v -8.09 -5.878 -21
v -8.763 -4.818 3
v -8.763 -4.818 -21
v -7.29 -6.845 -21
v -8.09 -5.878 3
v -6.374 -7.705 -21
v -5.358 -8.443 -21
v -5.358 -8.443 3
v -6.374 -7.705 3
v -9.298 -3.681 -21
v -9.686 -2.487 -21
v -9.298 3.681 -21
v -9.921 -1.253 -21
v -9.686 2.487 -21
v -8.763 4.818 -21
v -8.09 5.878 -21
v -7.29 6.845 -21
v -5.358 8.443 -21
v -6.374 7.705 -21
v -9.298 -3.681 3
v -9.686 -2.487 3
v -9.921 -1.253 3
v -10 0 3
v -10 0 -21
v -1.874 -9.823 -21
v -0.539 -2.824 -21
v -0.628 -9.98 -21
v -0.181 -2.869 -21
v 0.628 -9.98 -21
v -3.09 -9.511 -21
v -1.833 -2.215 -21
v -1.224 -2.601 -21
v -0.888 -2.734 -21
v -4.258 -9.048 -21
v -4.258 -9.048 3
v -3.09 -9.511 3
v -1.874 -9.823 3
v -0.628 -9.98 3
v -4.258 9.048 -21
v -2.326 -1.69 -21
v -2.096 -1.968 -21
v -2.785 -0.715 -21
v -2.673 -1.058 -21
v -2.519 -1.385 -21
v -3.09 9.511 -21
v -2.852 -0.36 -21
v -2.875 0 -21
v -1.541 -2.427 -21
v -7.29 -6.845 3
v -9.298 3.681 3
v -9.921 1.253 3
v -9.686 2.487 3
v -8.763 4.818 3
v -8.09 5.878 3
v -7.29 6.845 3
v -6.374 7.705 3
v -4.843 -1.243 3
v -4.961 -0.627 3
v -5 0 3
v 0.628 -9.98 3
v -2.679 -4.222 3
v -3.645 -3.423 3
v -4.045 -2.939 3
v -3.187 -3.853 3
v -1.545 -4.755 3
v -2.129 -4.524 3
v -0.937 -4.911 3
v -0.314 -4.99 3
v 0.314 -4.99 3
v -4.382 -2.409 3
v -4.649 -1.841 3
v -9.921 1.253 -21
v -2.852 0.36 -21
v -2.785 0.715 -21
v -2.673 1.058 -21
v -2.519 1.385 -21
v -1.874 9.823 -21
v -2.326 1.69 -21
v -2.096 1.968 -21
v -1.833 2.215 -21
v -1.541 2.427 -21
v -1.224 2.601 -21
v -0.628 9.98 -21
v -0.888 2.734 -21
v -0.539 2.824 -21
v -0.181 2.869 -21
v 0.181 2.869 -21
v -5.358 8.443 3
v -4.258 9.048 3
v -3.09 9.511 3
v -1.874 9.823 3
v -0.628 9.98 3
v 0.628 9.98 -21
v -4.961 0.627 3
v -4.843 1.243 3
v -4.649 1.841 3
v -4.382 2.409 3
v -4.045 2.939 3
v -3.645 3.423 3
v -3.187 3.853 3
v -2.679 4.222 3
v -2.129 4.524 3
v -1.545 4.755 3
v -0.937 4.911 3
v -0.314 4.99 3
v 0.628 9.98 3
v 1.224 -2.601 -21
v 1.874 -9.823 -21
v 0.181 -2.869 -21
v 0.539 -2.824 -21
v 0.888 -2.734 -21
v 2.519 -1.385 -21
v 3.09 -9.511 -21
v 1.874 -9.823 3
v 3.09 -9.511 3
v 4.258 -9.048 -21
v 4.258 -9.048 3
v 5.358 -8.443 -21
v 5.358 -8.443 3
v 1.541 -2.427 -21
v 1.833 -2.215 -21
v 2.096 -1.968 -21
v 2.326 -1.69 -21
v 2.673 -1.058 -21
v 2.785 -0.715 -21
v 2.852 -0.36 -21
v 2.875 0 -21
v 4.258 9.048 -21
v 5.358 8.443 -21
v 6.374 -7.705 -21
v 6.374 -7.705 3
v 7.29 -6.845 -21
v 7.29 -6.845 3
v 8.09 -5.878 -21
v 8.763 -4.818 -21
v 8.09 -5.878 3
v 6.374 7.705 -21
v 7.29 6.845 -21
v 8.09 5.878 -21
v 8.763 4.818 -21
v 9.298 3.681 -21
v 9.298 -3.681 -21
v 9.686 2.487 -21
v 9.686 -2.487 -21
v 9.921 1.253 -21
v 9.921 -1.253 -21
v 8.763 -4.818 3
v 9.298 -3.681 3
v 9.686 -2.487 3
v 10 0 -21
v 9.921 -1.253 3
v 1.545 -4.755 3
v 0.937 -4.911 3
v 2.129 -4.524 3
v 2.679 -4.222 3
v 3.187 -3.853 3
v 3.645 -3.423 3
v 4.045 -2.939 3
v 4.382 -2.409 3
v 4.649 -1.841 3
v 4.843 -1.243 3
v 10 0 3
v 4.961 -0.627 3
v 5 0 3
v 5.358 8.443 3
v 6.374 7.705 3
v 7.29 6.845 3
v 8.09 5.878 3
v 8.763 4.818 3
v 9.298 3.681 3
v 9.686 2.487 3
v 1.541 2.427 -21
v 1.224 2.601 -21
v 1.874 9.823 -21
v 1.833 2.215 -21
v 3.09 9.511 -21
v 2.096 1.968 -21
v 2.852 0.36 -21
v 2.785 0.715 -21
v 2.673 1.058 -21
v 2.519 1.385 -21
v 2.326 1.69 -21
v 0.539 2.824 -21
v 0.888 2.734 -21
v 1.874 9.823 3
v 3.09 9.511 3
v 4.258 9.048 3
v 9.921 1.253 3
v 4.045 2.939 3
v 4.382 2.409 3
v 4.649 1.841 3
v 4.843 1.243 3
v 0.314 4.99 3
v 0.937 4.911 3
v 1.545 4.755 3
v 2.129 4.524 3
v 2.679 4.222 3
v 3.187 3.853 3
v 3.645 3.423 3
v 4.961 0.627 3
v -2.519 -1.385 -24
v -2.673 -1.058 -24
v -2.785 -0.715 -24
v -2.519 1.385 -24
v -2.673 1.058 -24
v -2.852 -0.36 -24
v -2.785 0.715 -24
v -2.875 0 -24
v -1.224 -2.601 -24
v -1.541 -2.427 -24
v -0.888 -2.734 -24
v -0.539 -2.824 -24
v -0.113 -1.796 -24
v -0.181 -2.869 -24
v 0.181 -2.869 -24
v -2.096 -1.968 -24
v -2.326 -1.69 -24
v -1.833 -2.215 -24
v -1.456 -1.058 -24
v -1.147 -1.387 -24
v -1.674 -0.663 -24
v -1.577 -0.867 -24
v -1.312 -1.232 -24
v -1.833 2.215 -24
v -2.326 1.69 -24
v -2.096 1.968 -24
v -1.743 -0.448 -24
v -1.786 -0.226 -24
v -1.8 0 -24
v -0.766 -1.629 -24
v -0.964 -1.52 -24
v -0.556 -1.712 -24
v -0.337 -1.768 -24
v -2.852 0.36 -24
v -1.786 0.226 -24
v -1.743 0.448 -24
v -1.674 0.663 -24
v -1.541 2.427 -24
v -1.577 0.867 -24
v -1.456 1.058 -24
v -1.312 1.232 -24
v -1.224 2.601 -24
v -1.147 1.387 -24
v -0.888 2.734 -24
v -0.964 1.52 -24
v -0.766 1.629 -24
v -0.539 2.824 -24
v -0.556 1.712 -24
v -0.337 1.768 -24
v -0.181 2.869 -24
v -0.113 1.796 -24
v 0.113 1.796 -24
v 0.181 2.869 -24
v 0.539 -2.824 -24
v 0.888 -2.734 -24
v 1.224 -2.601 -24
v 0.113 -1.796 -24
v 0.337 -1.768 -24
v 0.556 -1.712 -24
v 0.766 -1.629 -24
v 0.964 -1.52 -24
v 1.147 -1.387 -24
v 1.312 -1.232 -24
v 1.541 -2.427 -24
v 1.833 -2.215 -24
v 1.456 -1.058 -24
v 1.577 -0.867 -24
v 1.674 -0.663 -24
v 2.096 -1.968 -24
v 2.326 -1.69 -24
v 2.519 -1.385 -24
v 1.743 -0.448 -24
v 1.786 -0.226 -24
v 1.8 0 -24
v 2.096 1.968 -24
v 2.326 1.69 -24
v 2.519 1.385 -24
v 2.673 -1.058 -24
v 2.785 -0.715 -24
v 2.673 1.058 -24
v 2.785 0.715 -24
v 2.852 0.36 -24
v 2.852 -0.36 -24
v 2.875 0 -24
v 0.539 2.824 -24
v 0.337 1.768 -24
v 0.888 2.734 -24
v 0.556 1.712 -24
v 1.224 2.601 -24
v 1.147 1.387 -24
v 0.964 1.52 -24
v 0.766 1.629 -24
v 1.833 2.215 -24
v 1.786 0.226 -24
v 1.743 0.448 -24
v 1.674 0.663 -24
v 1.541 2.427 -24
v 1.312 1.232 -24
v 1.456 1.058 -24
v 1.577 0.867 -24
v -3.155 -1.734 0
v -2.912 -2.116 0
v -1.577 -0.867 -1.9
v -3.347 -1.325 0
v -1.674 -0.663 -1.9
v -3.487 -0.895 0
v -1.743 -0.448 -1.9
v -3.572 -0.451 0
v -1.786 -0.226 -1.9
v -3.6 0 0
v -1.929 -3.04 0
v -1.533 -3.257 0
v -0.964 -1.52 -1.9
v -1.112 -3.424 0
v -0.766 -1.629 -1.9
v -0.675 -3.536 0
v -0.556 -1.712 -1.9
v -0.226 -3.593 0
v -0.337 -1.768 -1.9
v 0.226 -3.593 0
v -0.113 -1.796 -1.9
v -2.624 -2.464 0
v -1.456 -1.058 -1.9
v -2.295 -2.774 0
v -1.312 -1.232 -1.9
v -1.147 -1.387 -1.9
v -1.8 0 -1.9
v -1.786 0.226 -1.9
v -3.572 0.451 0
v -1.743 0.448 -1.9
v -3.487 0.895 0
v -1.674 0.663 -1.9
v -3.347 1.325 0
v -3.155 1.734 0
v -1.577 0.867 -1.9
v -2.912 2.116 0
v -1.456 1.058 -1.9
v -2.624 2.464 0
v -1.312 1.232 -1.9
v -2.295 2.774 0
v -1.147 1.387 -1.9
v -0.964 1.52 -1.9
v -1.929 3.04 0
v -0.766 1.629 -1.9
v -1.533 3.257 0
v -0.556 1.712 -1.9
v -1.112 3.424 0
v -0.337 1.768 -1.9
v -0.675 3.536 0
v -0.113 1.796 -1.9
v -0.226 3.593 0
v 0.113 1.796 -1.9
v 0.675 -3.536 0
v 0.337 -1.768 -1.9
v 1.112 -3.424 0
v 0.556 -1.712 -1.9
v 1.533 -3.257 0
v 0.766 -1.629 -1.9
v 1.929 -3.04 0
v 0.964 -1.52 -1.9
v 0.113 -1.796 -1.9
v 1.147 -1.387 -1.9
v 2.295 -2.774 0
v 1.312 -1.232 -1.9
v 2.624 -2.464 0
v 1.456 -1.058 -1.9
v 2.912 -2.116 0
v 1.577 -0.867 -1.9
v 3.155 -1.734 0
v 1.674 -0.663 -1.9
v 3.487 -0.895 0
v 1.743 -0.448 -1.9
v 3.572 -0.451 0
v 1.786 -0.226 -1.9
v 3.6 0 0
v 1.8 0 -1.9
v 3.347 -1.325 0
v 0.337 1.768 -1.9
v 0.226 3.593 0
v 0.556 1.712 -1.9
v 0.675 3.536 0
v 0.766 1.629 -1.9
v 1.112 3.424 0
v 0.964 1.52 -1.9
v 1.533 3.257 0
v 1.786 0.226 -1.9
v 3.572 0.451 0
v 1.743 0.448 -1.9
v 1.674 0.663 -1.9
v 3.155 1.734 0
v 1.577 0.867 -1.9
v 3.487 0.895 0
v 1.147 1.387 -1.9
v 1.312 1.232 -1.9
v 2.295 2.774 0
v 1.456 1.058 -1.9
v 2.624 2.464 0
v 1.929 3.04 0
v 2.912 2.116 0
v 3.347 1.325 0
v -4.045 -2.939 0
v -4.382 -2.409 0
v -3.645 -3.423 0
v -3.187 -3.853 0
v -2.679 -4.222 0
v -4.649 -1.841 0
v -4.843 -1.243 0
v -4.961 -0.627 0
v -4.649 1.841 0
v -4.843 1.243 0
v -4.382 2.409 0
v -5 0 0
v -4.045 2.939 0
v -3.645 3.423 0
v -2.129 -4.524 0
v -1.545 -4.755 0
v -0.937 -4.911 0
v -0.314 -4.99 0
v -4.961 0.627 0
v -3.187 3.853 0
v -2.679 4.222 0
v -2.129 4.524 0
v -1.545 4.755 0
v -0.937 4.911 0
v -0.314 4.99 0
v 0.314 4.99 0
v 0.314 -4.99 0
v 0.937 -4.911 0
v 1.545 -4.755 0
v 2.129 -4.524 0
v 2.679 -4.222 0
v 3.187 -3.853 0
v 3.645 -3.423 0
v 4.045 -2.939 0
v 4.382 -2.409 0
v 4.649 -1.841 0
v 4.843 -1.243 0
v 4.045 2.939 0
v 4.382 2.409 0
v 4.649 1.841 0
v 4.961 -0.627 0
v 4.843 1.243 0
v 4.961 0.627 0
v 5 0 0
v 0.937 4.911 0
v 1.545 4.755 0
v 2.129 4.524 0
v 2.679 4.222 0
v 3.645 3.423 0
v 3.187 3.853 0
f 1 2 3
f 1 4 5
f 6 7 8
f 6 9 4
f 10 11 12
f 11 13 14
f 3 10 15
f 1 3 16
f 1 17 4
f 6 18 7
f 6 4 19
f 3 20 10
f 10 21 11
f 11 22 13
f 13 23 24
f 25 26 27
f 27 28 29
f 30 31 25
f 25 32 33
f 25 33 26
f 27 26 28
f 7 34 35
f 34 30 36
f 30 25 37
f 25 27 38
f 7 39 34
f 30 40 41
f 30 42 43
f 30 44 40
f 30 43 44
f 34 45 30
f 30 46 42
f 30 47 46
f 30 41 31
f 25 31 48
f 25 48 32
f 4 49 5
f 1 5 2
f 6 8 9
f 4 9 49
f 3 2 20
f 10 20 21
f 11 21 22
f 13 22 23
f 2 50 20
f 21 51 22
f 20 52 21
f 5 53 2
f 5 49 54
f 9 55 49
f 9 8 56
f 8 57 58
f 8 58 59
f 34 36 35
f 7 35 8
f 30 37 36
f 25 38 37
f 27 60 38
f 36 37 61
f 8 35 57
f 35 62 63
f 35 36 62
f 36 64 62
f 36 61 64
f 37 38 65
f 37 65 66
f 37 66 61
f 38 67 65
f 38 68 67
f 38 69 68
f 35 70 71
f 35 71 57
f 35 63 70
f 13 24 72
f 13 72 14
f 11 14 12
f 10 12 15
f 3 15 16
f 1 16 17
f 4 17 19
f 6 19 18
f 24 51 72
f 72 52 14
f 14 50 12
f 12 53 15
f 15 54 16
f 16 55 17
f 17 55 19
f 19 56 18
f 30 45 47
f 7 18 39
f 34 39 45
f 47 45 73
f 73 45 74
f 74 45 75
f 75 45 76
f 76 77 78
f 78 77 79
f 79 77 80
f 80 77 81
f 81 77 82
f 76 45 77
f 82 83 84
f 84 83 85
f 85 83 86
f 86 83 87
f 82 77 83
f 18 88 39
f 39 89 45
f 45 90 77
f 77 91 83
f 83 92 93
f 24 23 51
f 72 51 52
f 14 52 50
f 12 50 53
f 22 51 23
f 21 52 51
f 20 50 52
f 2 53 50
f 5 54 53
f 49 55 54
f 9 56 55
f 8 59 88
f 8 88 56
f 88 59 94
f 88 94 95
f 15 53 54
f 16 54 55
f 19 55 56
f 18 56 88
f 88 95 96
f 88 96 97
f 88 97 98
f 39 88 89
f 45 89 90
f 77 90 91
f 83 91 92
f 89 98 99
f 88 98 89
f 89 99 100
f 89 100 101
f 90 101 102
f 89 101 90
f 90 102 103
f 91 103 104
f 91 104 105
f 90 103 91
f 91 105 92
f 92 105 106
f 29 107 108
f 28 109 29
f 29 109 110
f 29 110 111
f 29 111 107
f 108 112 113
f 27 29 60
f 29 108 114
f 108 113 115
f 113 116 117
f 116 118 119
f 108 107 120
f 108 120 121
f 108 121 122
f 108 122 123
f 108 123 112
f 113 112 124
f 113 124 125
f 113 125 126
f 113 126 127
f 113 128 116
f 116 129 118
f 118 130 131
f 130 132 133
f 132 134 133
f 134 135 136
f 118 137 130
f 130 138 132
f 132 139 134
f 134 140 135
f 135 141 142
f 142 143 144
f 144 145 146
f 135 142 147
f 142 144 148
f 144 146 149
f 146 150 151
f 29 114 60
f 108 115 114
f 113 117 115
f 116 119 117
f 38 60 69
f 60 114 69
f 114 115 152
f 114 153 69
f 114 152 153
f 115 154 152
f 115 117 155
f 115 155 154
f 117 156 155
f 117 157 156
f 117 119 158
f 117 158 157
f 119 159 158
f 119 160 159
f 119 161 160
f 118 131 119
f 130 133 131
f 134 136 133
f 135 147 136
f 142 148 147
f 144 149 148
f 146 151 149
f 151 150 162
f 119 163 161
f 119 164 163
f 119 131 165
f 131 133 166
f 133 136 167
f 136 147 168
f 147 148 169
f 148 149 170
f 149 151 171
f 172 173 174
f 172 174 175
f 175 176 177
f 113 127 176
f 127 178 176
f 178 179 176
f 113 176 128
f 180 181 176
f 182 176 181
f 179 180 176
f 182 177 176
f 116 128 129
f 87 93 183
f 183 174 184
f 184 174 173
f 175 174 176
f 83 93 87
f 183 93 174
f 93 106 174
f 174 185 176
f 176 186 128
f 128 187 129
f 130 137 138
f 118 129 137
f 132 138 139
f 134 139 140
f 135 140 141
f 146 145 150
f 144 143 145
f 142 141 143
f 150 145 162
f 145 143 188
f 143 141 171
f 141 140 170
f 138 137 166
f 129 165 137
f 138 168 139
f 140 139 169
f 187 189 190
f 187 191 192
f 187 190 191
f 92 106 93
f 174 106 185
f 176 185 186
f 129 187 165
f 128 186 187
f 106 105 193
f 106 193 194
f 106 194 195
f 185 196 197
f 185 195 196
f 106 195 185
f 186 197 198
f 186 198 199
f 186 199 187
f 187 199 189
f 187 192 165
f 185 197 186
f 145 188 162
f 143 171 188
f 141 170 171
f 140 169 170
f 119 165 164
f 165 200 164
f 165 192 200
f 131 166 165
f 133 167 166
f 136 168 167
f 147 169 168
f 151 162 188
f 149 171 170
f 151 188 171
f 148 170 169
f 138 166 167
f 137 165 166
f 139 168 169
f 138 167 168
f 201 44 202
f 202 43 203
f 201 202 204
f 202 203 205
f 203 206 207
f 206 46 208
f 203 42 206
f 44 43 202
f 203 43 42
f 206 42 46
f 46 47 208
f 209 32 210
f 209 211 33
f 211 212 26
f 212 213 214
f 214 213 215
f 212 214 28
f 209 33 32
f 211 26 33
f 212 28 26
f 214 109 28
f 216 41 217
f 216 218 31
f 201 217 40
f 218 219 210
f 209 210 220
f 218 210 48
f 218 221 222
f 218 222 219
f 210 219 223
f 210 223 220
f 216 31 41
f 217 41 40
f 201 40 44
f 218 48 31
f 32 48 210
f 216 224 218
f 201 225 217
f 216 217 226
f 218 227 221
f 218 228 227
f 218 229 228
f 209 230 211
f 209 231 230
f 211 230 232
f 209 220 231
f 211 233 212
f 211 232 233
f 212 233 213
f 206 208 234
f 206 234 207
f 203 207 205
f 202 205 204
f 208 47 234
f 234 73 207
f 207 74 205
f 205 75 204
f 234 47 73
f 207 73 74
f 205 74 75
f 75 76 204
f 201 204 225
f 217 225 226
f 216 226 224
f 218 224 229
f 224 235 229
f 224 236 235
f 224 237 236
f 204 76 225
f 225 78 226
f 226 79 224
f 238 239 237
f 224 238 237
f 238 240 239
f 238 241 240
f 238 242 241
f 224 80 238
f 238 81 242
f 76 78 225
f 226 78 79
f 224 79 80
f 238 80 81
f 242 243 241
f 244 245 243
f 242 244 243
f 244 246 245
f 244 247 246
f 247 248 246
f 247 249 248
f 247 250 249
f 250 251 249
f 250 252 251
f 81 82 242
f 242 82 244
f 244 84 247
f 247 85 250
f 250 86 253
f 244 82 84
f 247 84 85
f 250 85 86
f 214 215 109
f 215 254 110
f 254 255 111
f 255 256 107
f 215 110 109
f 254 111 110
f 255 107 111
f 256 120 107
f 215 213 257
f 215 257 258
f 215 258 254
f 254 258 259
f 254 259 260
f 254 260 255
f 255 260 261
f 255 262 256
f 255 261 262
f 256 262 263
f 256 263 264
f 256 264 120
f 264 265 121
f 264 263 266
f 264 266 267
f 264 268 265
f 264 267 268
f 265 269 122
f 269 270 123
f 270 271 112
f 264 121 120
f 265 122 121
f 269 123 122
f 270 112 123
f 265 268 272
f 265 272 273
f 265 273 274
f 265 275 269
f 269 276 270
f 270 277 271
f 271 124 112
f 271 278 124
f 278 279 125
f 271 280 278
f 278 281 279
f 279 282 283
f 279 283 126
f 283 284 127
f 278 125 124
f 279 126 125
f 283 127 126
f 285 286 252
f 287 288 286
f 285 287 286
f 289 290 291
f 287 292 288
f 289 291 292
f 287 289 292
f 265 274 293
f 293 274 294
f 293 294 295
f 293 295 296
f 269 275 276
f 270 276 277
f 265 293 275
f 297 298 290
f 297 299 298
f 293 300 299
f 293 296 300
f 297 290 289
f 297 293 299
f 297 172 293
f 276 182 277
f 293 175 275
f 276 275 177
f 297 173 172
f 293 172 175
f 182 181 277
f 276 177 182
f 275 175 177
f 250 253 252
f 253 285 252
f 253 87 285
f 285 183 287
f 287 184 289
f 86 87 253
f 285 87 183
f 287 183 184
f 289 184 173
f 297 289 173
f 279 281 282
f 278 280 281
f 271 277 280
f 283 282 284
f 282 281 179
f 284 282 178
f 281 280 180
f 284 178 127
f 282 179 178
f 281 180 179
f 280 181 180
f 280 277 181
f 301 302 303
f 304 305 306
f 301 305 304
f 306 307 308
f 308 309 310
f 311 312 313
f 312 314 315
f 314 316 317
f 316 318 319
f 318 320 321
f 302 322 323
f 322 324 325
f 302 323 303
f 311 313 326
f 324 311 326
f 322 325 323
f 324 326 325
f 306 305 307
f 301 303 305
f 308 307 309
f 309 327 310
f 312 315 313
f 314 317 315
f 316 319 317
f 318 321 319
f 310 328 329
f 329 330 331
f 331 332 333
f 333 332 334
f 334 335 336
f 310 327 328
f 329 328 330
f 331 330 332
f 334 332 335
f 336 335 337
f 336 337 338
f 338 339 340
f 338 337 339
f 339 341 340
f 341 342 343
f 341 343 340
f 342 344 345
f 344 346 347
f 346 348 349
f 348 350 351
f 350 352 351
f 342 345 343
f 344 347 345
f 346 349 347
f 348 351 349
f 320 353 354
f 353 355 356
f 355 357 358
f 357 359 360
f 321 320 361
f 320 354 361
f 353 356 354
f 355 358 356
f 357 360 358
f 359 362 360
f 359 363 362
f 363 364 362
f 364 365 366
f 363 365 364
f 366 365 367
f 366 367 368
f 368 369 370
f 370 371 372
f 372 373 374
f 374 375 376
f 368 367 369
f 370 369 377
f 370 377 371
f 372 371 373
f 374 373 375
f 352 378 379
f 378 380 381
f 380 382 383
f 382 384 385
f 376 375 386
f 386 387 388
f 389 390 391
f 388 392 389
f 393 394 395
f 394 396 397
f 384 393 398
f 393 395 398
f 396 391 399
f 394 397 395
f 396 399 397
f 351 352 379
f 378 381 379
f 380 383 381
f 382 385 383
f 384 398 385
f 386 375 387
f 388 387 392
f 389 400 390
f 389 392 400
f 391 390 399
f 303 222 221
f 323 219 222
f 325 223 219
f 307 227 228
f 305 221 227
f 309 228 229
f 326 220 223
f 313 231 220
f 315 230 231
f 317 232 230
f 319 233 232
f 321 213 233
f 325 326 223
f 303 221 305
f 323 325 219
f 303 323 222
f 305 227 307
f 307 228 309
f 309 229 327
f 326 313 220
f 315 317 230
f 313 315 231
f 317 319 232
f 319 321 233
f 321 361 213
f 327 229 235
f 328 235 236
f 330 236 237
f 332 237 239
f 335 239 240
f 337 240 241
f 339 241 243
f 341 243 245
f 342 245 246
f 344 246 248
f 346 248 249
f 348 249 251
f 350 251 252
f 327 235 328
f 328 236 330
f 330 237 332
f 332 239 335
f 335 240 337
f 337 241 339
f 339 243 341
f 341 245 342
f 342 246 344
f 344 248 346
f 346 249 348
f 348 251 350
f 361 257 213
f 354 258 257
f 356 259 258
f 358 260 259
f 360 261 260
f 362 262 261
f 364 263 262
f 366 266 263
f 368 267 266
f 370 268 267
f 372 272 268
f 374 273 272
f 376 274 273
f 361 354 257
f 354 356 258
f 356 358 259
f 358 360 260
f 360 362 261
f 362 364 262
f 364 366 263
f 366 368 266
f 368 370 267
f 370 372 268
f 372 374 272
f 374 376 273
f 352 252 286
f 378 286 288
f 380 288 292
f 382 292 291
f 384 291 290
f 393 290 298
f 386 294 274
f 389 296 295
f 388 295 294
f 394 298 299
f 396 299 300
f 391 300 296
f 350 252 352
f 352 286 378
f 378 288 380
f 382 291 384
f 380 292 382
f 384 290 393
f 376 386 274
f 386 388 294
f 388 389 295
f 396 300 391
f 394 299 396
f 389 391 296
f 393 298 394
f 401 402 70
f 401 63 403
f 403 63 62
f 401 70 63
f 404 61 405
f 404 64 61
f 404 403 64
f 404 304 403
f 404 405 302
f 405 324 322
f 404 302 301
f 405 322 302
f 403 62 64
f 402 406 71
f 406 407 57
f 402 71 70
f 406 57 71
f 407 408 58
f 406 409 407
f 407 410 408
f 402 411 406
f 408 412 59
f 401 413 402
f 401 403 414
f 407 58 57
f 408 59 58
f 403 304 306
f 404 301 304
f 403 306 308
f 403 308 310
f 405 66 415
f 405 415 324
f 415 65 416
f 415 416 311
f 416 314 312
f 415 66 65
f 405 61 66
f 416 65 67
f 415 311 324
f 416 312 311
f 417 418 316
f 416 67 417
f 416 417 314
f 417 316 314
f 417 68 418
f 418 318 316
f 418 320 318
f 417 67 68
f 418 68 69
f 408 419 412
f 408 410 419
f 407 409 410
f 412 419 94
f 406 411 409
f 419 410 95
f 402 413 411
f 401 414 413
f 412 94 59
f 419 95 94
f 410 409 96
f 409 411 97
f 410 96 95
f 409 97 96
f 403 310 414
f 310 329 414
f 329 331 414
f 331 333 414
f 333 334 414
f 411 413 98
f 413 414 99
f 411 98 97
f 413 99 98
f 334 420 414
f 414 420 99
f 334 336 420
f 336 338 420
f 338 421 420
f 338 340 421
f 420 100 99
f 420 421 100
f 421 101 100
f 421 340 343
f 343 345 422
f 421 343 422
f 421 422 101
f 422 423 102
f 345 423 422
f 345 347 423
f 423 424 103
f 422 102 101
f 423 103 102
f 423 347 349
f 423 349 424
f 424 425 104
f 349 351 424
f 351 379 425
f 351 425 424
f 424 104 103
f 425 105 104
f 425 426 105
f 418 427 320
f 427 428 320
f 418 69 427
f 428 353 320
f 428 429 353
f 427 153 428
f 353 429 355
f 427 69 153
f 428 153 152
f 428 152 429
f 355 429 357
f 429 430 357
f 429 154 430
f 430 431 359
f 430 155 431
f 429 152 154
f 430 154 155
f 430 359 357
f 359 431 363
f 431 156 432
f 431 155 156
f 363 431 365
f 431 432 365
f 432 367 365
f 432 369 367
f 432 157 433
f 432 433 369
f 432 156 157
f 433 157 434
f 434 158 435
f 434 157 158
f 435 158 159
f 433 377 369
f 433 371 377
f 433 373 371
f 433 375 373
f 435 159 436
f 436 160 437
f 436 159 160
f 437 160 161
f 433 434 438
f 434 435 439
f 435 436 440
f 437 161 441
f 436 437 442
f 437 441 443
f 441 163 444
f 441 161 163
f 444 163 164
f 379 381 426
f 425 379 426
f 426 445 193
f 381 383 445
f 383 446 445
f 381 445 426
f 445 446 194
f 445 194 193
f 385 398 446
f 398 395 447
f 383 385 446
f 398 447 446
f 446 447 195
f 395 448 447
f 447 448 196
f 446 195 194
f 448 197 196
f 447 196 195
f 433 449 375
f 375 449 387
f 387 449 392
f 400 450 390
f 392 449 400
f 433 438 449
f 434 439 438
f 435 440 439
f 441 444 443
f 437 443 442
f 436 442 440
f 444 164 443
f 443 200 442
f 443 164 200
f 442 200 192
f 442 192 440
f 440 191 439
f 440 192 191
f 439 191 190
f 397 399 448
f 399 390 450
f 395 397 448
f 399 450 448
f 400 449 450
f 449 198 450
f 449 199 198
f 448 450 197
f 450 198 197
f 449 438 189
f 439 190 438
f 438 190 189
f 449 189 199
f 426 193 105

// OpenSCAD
$fn = 50;


difference() {
	union() {
		translate(v = [0, 0, -21.0000000000]) {
			cylinder(h = 24, r = 10.0000000000);
		}
		#translate(v = [0, 0, -24.0000000000]) {
			cylinder(h = 24, r = 2.8750000000);
		}
	}
	union() {
		translate(v = [0, 0, 0]) {
			rotate(a = [0, 0, 0]) {
				difference() {
					union() {
						translate(v = [0, 0, -24.0000000000]) {
							cylinder(h = 24, r = 1.5000000000);
						}
						translate(v = [0, 0, -1.9000000000]) {
							cylinder(h = 1.9000000000, r1 = 1.8000000000, r2 = 3.6000000000);
						}
						translate(v = [0, 0, -24.0000000000]) {
							cylinder(h = 24, r = 1.8000000000);
						}
						translate(v = [0, 0, -24.0000000000]) {
							cylinder(h = 24, r = 1.5000000000);
						}
					}
					union();
				}
			}
		}
		#cylinder(h = 3, r = 5.0000000000);
	}
}
